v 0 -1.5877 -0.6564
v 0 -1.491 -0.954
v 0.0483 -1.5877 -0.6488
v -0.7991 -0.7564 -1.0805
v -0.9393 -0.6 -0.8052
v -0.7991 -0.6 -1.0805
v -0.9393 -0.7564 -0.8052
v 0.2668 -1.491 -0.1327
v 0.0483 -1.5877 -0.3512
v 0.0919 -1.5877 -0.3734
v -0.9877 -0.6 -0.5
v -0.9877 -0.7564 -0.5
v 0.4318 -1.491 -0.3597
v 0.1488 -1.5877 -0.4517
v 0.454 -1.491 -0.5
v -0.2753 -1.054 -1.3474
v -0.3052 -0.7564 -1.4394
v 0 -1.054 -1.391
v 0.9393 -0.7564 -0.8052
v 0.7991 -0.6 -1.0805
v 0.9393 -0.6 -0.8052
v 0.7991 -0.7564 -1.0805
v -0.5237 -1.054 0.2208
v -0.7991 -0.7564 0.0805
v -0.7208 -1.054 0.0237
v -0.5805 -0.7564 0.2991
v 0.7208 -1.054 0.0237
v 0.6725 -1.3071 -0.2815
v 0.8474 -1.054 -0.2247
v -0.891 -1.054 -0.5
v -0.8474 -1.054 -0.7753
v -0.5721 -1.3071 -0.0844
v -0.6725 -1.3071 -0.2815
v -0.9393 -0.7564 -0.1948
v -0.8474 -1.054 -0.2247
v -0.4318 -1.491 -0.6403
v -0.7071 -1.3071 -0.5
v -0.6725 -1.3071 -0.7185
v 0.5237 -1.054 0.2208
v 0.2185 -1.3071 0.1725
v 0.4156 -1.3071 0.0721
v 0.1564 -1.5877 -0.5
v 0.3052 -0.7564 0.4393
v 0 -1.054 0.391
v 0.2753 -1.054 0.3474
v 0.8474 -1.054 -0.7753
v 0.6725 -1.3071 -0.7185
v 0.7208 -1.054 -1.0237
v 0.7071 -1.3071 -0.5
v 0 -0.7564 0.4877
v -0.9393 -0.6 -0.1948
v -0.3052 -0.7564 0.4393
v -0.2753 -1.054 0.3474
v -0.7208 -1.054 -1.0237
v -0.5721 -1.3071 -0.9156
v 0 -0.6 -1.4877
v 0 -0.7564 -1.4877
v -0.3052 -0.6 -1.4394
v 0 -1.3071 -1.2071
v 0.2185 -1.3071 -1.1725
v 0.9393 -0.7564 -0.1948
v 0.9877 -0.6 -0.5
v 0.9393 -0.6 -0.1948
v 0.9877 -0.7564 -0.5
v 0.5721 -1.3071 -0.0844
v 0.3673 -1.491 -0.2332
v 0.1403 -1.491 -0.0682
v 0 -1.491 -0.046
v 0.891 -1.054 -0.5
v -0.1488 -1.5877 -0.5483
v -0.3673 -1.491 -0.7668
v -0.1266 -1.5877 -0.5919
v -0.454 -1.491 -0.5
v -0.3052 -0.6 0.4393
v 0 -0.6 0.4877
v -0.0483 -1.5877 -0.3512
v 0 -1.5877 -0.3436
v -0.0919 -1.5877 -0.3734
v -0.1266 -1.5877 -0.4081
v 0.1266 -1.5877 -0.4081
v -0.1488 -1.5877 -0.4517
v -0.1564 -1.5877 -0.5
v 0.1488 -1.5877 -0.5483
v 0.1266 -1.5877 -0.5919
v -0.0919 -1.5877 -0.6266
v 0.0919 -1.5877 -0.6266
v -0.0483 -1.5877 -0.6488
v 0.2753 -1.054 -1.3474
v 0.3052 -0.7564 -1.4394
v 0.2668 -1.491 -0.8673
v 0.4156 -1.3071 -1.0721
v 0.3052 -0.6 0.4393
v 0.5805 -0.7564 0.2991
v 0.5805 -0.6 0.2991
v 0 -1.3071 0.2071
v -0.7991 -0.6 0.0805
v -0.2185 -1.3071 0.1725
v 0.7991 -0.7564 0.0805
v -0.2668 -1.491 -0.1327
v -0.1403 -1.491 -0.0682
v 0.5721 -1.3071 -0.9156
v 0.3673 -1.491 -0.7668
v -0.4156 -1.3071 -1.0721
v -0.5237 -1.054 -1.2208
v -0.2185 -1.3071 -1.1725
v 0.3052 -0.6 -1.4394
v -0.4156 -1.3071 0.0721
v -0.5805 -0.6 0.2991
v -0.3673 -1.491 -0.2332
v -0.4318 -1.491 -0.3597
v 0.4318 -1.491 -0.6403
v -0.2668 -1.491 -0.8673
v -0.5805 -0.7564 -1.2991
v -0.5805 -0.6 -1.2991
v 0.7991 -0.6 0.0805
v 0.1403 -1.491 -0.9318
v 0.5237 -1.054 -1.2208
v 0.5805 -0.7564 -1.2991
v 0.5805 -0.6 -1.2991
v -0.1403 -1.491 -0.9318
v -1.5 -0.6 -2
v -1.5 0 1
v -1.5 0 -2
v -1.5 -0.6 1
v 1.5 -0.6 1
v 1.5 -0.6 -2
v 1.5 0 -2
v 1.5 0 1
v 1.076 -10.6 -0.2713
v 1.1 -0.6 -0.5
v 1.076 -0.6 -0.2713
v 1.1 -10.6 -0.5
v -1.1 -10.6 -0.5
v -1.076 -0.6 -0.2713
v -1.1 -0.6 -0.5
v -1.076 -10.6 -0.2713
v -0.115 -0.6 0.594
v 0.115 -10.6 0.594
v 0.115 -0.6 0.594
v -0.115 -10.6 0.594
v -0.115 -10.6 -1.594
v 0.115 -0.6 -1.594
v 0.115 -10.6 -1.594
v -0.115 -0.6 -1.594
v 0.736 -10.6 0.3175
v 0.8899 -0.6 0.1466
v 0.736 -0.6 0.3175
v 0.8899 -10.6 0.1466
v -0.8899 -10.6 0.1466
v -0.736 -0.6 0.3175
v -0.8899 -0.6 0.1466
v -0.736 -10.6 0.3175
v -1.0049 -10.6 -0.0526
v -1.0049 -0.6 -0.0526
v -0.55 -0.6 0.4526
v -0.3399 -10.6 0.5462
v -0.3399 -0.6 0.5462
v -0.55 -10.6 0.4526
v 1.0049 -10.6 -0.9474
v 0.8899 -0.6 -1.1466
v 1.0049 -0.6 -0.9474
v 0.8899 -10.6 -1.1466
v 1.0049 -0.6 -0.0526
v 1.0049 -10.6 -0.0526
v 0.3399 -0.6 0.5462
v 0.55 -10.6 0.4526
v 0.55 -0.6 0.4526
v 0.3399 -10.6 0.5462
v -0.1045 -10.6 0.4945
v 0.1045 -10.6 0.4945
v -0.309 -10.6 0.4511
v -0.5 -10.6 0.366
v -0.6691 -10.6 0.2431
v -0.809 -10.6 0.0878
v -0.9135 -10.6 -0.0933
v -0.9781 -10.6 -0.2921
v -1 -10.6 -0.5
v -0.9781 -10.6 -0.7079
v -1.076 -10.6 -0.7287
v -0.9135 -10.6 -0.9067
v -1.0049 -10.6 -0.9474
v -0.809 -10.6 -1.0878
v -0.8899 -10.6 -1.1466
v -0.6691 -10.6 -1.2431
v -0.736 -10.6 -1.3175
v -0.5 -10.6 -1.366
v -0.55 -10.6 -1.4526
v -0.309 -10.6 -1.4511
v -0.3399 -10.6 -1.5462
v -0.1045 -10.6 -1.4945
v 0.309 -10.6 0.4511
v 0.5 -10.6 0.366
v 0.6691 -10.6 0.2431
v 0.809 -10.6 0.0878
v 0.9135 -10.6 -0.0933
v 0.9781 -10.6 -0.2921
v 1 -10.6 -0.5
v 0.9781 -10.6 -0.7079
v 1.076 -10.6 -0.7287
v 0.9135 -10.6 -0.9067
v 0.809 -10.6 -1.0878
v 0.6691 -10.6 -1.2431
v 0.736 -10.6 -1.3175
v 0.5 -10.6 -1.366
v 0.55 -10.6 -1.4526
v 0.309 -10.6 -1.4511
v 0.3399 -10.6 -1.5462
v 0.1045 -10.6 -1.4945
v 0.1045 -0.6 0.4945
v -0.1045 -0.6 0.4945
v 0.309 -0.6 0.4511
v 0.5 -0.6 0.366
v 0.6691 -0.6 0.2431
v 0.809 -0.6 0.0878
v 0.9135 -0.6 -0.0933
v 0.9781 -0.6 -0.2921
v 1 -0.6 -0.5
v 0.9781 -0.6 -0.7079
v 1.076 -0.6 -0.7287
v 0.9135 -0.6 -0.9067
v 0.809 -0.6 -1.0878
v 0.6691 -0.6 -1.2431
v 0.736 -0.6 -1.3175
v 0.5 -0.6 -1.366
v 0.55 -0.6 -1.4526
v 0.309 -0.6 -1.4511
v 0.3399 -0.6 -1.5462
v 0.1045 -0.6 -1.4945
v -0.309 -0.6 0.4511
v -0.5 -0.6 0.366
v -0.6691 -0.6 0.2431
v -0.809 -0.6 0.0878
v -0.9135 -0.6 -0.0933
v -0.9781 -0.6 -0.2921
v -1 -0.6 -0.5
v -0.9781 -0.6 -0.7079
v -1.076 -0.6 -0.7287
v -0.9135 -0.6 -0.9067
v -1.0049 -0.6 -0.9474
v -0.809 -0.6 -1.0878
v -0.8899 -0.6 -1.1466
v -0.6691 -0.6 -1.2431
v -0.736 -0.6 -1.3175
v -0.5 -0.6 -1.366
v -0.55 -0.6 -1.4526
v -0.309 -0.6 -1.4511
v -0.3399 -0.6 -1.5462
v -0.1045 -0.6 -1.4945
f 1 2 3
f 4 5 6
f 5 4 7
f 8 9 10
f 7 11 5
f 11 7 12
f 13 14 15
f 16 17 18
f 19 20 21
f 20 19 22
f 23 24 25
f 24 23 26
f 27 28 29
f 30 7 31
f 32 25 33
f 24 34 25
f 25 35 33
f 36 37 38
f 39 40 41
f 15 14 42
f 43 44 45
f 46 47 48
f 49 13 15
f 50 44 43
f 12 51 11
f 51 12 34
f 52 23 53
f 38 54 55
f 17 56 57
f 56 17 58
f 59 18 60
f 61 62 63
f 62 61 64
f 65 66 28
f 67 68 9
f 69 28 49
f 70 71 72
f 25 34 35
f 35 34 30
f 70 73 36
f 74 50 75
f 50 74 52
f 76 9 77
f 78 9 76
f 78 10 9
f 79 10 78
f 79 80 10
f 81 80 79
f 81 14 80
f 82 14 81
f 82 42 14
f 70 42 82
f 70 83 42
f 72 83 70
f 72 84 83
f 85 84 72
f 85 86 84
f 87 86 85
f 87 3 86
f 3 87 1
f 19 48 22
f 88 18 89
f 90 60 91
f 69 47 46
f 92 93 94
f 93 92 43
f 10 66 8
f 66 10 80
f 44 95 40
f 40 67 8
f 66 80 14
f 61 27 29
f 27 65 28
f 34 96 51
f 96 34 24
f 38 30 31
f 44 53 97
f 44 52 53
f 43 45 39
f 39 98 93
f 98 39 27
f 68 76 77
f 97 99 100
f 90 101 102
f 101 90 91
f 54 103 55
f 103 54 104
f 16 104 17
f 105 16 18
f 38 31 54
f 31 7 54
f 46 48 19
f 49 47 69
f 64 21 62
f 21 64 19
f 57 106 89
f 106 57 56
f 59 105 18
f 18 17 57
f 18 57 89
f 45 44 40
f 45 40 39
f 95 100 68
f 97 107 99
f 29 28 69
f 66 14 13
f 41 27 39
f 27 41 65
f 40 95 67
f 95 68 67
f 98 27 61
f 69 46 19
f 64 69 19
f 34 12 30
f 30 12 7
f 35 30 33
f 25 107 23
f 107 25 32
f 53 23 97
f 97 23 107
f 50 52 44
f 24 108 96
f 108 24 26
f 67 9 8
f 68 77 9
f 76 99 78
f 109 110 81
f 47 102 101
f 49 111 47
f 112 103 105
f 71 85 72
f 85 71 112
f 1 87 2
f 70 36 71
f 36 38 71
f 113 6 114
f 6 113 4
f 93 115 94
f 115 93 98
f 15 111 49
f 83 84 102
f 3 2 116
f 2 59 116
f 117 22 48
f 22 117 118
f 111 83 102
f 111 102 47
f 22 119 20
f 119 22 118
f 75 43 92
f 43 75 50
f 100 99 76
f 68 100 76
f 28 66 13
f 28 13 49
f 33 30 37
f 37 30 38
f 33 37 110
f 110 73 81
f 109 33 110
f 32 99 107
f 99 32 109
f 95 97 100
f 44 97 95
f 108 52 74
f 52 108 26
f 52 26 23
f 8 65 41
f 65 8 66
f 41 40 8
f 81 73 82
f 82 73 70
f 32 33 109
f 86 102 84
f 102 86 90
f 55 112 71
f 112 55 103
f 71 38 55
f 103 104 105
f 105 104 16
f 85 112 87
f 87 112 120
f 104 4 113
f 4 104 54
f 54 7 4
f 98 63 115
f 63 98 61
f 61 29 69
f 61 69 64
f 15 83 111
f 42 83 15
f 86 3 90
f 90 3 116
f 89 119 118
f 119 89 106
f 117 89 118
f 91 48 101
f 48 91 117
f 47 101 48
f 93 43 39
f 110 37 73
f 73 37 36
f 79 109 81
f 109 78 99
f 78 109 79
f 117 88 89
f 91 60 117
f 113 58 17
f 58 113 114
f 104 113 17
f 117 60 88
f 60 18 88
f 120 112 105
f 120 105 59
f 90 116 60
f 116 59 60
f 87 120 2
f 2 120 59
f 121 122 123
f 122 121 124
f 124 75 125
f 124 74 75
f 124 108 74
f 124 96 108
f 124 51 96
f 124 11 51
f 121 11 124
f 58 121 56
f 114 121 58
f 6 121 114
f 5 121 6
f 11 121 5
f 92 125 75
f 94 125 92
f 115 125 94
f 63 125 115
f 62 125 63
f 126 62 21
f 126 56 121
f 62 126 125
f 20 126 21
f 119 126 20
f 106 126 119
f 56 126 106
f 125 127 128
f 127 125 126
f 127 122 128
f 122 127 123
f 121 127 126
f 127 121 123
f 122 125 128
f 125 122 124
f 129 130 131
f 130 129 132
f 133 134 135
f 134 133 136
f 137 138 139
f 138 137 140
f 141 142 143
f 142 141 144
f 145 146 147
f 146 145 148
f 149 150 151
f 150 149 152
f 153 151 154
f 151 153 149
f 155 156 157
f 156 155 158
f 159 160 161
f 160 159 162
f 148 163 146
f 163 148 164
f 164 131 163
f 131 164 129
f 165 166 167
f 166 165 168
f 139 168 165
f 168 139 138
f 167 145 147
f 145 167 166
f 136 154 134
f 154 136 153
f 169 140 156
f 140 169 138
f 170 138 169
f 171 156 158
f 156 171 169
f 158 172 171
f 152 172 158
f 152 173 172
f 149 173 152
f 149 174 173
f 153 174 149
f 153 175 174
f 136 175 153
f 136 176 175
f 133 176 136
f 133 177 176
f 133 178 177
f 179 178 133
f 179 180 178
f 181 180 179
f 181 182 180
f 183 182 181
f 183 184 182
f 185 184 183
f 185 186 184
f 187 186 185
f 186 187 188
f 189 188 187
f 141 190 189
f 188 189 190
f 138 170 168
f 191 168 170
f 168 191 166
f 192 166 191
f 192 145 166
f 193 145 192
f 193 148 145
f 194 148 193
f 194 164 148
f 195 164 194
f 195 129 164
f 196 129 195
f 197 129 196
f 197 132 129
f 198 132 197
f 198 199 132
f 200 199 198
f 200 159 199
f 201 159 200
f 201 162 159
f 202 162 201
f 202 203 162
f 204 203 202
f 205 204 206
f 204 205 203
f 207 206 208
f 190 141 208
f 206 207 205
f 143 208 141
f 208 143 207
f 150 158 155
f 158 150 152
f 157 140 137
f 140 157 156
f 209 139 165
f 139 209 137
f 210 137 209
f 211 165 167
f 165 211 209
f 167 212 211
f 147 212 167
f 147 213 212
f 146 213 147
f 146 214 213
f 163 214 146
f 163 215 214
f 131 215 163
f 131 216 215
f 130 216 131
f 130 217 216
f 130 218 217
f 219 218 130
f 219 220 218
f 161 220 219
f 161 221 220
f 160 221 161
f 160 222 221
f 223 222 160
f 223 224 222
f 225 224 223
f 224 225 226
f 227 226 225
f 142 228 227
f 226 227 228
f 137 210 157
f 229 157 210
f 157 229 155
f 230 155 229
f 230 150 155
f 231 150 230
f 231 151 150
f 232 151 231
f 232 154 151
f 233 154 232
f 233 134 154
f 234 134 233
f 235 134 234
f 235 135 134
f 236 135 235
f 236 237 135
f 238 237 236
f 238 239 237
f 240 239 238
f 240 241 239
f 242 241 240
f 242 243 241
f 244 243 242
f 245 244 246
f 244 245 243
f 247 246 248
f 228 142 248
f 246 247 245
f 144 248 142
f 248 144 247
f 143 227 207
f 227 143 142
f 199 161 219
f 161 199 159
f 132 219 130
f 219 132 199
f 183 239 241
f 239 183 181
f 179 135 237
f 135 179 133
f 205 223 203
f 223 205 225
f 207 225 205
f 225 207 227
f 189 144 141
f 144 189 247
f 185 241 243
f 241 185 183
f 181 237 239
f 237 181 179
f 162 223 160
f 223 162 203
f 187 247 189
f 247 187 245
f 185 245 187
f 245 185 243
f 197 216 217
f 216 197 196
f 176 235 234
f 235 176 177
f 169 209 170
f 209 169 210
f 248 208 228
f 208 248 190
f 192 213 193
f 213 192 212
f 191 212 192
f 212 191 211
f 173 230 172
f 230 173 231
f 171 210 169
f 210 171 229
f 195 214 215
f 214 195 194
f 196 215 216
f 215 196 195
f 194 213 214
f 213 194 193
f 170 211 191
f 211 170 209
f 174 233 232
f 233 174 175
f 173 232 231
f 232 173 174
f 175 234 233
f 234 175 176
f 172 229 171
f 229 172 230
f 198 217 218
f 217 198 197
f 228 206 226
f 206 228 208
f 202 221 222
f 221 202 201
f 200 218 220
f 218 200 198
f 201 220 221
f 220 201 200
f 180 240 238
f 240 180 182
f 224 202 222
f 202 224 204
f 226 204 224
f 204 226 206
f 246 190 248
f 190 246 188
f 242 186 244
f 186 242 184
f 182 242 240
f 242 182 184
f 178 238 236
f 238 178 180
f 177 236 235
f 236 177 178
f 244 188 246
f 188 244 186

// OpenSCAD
// Unit is mm
ledWidth = 3;       // OSRAM Oslon
ledHeight = 3;      // OSRAM Oslon
ledThickness = 0.6; // OSRAM Oslon

tubeInner = 2;
tubeOuter = 2.2;
tubeLength = 10;

translate([0, -0.3, 0]){
    translate([0, 0, -0.5]){
        rotate([90, 0, 0]){
            union(){
                LED();
                translate([0, 0, ledThickness/2]) tube();
            }
        }
    }
}

module LED() {
  color("red", 0.7){
      cube([ledWidth, ledHeight, ledThickness], center=true);
      difference(){
        translate([0, 0, 0.3])
        sphere(tubeInner/2, $fn=20, $fa=12, $fs=2); 
        translate([0, 0, -tubeInner/2])
        cube([tubeInner, tubeInner, tubeInner], center=true);
     }
   }
}

module tube(){
   difference(){
     $fn = 30; // Number of fragments
     cylinder(tubeLength, tubeOuter/2, tubeOuter/2, center=false);
     cylinder(tubeLength, tubeInner/2, tubeInner/2, center=false);
   }
}
